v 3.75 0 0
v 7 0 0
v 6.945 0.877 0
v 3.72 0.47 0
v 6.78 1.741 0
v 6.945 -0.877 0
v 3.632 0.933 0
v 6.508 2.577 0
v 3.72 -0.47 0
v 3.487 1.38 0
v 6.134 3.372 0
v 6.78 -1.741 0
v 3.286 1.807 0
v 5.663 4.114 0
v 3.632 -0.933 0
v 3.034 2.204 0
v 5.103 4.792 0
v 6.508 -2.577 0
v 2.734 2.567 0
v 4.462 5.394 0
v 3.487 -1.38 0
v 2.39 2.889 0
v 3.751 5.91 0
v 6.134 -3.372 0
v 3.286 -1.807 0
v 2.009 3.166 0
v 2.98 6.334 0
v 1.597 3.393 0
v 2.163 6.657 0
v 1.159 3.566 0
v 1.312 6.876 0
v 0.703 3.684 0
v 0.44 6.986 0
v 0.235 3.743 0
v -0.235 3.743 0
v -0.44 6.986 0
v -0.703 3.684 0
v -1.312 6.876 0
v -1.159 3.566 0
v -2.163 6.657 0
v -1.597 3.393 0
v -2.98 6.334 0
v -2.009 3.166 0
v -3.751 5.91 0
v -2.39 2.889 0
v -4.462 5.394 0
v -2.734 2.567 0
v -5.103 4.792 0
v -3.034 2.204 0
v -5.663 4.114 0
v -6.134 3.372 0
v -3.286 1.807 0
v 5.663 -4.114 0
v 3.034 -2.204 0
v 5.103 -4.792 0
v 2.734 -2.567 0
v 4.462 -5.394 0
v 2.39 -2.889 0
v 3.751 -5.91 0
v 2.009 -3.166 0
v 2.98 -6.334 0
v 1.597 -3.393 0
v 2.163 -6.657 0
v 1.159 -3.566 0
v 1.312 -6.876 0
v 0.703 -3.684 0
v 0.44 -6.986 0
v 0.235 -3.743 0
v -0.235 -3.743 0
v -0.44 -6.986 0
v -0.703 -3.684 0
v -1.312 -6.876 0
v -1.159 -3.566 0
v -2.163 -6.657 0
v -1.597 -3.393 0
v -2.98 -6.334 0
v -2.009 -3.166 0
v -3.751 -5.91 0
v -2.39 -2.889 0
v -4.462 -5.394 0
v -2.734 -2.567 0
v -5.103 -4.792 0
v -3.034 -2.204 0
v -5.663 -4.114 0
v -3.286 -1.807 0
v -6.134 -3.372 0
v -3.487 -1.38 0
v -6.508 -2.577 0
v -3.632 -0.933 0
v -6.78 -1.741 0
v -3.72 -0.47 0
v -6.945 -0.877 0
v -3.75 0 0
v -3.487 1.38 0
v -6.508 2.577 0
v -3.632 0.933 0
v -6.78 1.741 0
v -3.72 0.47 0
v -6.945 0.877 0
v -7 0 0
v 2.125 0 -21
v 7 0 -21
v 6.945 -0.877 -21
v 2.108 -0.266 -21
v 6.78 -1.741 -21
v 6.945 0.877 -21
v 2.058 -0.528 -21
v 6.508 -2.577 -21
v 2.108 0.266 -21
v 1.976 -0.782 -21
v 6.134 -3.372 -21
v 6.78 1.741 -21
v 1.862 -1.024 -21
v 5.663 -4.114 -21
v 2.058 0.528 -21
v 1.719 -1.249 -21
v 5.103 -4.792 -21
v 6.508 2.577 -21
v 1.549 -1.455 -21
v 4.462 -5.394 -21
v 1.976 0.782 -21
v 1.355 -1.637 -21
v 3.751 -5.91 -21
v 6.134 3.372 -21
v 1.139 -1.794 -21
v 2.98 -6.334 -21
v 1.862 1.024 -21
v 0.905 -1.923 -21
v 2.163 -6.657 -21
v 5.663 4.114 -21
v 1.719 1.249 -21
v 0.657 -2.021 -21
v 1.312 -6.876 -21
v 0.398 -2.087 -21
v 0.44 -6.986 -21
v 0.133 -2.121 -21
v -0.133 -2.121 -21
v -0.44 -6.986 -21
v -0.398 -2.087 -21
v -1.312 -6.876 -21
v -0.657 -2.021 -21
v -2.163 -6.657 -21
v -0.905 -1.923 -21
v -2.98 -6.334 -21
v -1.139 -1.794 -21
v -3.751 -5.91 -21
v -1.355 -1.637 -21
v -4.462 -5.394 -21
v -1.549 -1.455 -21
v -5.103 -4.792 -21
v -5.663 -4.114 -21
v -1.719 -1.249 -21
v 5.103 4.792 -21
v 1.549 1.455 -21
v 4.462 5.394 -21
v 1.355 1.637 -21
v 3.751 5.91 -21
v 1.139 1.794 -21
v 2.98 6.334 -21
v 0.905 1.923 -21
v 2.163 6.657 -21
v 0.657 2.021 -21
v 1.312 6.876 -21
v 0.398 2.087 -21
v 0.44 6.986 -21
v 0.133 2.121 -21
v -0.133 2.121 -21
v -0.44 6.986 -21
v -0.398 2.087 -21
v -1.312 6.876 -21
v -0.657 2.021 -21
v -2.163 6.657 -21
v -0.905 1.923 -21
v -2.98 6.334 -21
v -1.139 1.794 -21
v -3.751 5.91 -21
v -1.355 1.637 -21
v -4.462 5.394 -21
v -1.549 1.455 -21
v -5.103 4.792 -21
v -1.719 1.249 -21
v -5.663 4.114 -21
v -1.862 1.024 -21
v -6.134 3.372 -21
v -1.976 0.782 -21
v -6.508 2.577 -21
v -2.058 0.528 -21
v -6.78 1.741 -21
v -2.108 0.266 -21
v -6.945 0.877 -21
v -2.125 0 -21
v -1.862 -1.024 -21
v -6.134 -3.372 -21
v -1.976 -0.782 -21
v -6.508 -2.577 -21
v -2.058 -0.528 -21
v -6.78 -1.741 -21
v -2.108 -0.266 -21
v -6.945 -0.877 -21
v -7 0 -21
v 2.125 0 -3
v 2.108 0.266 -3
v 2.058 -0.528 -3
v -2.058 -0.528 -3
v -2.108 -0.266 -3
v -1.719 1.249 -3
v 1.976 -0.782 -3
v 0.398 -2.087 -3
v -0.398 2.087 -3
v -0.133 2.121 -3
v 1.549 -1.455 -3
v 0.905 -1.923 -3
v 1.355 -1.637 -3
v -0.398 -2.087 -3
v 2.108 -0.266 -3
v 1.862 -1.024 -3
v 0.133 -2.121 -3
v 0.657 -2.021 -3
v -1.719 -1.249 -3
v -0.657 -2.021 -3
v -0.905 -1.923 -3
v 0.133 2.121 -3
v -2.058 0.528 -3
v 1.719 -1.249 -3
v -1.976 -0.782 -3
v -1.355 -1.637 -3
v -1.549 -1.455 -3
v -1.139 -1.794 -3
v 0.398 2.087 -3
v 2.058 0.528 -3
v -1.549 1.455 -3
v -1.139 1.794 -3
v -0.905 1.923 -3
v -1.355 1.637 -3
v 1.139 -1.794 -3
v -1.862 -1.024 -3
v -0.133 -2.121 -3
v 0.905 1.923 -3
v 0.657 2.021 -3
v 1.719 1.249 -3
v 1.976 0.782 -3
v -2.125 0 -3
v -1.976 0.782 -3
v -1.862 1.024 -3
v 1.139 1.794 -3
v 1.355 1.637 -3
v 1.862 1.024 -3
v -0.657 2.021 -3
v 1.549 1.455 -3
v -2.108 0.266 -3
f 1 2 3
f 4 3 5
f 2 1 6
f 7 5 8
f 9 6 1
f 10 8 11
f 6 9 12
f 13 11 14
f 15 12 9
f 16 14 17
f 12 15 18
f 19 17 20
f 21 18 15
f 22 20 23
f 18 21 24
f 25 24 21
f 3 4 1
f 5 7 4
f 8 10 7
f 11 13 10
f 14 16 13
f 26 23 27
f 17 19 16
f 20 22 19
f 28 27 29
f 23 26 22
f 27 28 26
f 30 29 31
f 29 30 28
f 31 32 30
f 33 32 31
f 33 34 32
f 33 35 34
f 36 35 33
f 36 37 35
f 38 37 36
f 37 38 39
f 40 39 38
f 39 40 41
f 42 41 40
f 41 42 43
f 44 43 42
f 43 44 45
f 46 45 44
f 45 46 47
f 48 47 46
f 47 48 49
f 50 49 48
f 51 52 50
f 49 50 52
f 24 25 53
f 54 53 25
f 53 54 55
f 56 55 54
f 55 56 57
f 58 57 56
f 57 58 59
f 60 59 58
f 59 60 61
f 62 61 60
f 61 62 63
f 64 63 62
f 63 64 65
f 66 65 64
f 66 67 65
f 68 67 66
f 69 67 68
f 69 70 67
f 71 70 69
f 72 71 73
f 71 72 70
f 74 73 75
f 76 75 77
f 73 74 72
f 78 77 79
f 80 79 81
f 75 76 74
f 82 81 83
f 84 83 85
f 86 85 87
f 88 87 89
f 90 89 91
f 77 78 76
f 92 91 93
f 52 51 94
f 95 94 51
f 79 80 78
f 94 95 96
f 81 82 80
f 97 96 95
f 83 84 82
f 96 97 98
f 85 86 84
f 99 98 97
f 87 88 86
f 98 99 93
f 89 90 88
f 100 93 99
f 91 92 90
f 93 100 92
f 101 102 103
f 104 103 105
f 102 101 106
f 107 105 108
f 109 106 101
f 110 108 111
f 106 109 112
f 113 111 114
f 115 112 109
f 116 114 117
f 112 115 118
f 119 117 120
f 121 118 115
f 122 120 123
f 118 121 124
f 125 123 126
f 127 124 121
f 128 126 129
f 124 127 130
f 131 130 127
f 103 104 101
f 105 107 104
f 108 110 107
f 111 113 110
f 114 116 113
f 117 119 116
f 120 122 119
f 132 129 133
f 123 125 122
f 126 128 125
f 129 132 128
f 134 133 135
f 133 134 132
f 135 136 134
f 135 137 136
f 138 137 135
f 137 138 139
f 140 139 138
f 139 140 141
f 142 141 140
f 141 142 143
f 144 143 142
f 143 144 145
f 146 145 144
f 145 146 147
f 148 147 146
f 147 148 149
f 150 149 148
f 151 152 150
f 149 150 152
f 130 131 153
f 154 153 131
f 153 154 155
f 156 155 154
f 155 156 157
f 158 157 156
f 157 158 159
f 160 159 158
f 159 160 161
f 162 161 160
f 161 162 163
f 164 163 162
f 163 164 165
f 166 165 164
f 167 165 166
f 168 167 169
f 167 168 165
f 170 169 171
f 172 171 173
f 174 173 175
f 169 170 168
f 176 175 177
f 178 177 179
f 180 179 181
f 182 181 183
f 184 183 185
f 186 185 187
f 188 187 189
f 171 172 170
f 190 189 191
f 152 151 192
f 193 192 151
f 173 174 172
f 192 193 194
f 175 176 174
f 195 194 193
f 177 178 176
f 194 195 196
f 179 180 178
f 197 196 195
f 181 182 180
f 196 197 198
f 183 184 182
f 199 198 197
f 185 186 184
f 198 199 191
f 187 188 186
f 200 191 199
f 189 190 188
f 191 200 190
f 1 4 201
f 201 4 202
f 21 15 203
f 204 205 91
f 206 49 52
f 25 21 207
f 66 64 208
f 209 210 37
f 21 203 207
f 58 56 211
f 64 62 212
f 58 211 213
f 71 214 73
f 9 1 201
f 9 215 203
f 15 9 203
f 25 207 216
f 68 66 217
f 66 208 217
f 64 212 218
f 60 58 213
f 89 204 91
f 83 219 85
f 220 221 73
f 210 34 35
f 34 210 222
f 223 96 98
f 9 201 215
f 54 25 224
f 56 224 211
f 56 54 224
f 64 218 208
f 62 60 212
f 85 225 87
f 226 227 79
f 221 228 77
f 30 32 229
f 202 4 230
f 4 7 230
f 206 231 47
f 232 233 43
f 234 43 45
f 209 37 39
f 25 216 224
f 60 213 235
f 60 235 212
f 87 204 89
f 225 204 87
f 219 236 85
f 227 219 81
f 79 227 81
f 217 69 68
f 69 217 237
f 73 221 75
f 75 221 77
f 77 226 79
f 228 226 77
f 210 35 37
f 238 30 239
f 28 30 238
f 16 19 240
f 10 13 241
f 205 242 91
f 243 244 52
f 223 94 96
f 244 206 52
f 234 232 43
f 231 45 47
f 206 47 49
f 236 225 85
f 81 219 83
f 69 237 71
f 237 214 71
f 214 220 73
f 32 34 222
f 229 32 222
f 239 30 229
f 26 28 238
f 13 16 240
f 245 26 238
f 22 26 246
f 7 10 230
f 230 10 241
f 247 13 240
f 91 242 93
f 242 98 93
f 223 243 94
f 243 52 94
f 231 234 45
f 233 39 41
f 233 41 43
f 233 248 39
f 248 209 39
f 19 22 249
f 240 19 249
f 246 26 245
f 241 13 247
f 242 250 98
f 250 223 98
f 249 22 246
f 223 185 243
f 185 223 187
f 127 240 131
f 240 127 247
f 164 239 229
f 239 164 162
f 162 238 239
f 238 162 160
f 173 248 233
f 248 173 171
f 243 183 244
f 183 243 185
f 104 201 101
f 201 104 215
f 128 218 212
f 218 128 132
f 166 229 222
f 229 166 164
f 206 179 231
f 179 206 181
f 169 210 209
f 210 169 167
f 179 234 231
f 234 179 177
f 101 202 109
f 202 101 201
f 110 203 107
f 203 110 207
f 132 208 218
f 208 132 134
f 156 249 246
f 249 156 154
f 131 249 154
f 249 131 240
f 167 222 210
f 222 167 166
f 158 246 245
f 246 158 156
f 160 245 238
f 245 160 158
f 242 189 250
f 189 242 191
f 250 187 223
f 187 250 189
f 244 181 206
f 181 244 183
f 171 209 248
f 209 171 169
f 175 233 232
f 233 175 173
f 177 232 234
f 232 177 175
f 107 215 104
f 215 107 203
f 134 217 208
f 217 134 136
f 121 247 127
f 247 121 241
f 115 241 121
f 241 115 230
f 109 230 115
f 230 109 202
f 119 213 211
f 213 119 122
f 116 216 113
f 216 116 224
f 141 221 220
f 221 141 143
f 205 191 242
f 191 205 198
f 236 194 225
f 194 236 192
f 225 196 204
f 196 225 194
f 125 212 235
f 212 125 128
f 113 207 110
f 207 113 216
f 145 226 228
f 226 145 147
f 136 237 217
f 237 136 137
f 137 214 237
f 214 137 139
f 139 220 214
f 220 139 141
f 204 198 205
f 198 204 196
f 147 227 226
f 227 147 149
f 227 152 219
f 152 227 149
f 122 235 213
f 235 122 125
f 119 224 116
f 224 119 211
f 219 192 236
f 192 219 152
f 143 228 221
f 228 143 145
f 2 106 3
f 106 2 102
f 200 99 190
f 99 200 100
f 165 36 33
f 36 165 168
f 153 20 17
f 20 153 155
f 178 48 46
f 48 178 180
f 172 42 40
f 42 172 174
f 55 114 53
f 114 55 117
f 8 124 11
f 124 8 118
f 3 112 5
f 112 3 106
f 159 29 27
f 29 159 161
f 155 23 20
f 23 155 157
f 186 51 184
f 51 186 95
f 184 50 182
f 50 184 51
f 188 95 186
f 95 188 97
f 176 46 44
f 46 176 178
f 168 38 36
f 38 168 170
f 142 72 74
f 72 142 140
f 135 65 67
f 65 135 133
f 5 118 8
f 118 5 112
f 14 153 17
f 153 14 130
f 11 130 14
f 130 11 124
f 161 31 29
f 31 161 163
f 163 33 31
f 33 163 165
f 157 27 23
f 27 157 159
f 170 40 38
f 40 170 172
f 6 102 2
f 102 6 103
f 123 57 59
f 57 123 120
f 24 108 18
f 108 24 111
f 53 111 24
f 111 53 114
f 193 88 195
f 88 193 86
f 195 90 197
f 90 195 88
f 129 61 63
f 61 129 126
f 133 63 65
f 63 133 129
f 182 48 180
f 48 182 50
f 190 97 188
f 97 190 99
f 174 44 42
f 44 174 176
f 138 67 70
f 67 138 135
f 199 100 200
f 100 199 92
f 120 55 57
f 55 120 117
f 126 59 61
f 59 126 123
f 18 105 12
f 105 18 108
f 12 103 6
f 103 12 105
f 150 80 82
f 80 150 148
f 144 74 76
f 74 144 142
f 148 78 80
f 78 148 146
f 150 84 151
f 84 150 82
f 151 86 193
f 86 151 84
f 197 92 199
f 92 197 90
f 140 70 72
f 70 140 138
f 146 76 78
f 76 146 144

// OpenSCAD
$fn = 50;


difference() {
	union() {
		translate(v = [0, 0, -21.0000000000]) {
			cylinder(h = 21, r = 7.0000000000);
		}
		cylinder(h = 0, r = 16.0000000000);
	}
	union() {
		translate(v = [0, 0, 0]) {
			rotate(a = [0, 0, 0]) {
				difference() {
					union() {
						#translate(v = [0, 0, -21.0000000000]) {
							cylinder(h = 21, r = 2.0000000000);
						}
						#translate(v = [0, 0, -3]) {
							cylinder(h = 3, r1 = 2.1250000000, r2 = 3.7500000000);
						}
						#translate(v = [0, 0, -21.0000000000]) {
							cylinder(h = 21, r = 2.1250000000);
						}
						#translate(v = [0, 0, -21.0000000000]) {
							cylinder(h = 21, r = 2.0000000000);
						}
					}
					union();
				}
			}
		}
	}
}
